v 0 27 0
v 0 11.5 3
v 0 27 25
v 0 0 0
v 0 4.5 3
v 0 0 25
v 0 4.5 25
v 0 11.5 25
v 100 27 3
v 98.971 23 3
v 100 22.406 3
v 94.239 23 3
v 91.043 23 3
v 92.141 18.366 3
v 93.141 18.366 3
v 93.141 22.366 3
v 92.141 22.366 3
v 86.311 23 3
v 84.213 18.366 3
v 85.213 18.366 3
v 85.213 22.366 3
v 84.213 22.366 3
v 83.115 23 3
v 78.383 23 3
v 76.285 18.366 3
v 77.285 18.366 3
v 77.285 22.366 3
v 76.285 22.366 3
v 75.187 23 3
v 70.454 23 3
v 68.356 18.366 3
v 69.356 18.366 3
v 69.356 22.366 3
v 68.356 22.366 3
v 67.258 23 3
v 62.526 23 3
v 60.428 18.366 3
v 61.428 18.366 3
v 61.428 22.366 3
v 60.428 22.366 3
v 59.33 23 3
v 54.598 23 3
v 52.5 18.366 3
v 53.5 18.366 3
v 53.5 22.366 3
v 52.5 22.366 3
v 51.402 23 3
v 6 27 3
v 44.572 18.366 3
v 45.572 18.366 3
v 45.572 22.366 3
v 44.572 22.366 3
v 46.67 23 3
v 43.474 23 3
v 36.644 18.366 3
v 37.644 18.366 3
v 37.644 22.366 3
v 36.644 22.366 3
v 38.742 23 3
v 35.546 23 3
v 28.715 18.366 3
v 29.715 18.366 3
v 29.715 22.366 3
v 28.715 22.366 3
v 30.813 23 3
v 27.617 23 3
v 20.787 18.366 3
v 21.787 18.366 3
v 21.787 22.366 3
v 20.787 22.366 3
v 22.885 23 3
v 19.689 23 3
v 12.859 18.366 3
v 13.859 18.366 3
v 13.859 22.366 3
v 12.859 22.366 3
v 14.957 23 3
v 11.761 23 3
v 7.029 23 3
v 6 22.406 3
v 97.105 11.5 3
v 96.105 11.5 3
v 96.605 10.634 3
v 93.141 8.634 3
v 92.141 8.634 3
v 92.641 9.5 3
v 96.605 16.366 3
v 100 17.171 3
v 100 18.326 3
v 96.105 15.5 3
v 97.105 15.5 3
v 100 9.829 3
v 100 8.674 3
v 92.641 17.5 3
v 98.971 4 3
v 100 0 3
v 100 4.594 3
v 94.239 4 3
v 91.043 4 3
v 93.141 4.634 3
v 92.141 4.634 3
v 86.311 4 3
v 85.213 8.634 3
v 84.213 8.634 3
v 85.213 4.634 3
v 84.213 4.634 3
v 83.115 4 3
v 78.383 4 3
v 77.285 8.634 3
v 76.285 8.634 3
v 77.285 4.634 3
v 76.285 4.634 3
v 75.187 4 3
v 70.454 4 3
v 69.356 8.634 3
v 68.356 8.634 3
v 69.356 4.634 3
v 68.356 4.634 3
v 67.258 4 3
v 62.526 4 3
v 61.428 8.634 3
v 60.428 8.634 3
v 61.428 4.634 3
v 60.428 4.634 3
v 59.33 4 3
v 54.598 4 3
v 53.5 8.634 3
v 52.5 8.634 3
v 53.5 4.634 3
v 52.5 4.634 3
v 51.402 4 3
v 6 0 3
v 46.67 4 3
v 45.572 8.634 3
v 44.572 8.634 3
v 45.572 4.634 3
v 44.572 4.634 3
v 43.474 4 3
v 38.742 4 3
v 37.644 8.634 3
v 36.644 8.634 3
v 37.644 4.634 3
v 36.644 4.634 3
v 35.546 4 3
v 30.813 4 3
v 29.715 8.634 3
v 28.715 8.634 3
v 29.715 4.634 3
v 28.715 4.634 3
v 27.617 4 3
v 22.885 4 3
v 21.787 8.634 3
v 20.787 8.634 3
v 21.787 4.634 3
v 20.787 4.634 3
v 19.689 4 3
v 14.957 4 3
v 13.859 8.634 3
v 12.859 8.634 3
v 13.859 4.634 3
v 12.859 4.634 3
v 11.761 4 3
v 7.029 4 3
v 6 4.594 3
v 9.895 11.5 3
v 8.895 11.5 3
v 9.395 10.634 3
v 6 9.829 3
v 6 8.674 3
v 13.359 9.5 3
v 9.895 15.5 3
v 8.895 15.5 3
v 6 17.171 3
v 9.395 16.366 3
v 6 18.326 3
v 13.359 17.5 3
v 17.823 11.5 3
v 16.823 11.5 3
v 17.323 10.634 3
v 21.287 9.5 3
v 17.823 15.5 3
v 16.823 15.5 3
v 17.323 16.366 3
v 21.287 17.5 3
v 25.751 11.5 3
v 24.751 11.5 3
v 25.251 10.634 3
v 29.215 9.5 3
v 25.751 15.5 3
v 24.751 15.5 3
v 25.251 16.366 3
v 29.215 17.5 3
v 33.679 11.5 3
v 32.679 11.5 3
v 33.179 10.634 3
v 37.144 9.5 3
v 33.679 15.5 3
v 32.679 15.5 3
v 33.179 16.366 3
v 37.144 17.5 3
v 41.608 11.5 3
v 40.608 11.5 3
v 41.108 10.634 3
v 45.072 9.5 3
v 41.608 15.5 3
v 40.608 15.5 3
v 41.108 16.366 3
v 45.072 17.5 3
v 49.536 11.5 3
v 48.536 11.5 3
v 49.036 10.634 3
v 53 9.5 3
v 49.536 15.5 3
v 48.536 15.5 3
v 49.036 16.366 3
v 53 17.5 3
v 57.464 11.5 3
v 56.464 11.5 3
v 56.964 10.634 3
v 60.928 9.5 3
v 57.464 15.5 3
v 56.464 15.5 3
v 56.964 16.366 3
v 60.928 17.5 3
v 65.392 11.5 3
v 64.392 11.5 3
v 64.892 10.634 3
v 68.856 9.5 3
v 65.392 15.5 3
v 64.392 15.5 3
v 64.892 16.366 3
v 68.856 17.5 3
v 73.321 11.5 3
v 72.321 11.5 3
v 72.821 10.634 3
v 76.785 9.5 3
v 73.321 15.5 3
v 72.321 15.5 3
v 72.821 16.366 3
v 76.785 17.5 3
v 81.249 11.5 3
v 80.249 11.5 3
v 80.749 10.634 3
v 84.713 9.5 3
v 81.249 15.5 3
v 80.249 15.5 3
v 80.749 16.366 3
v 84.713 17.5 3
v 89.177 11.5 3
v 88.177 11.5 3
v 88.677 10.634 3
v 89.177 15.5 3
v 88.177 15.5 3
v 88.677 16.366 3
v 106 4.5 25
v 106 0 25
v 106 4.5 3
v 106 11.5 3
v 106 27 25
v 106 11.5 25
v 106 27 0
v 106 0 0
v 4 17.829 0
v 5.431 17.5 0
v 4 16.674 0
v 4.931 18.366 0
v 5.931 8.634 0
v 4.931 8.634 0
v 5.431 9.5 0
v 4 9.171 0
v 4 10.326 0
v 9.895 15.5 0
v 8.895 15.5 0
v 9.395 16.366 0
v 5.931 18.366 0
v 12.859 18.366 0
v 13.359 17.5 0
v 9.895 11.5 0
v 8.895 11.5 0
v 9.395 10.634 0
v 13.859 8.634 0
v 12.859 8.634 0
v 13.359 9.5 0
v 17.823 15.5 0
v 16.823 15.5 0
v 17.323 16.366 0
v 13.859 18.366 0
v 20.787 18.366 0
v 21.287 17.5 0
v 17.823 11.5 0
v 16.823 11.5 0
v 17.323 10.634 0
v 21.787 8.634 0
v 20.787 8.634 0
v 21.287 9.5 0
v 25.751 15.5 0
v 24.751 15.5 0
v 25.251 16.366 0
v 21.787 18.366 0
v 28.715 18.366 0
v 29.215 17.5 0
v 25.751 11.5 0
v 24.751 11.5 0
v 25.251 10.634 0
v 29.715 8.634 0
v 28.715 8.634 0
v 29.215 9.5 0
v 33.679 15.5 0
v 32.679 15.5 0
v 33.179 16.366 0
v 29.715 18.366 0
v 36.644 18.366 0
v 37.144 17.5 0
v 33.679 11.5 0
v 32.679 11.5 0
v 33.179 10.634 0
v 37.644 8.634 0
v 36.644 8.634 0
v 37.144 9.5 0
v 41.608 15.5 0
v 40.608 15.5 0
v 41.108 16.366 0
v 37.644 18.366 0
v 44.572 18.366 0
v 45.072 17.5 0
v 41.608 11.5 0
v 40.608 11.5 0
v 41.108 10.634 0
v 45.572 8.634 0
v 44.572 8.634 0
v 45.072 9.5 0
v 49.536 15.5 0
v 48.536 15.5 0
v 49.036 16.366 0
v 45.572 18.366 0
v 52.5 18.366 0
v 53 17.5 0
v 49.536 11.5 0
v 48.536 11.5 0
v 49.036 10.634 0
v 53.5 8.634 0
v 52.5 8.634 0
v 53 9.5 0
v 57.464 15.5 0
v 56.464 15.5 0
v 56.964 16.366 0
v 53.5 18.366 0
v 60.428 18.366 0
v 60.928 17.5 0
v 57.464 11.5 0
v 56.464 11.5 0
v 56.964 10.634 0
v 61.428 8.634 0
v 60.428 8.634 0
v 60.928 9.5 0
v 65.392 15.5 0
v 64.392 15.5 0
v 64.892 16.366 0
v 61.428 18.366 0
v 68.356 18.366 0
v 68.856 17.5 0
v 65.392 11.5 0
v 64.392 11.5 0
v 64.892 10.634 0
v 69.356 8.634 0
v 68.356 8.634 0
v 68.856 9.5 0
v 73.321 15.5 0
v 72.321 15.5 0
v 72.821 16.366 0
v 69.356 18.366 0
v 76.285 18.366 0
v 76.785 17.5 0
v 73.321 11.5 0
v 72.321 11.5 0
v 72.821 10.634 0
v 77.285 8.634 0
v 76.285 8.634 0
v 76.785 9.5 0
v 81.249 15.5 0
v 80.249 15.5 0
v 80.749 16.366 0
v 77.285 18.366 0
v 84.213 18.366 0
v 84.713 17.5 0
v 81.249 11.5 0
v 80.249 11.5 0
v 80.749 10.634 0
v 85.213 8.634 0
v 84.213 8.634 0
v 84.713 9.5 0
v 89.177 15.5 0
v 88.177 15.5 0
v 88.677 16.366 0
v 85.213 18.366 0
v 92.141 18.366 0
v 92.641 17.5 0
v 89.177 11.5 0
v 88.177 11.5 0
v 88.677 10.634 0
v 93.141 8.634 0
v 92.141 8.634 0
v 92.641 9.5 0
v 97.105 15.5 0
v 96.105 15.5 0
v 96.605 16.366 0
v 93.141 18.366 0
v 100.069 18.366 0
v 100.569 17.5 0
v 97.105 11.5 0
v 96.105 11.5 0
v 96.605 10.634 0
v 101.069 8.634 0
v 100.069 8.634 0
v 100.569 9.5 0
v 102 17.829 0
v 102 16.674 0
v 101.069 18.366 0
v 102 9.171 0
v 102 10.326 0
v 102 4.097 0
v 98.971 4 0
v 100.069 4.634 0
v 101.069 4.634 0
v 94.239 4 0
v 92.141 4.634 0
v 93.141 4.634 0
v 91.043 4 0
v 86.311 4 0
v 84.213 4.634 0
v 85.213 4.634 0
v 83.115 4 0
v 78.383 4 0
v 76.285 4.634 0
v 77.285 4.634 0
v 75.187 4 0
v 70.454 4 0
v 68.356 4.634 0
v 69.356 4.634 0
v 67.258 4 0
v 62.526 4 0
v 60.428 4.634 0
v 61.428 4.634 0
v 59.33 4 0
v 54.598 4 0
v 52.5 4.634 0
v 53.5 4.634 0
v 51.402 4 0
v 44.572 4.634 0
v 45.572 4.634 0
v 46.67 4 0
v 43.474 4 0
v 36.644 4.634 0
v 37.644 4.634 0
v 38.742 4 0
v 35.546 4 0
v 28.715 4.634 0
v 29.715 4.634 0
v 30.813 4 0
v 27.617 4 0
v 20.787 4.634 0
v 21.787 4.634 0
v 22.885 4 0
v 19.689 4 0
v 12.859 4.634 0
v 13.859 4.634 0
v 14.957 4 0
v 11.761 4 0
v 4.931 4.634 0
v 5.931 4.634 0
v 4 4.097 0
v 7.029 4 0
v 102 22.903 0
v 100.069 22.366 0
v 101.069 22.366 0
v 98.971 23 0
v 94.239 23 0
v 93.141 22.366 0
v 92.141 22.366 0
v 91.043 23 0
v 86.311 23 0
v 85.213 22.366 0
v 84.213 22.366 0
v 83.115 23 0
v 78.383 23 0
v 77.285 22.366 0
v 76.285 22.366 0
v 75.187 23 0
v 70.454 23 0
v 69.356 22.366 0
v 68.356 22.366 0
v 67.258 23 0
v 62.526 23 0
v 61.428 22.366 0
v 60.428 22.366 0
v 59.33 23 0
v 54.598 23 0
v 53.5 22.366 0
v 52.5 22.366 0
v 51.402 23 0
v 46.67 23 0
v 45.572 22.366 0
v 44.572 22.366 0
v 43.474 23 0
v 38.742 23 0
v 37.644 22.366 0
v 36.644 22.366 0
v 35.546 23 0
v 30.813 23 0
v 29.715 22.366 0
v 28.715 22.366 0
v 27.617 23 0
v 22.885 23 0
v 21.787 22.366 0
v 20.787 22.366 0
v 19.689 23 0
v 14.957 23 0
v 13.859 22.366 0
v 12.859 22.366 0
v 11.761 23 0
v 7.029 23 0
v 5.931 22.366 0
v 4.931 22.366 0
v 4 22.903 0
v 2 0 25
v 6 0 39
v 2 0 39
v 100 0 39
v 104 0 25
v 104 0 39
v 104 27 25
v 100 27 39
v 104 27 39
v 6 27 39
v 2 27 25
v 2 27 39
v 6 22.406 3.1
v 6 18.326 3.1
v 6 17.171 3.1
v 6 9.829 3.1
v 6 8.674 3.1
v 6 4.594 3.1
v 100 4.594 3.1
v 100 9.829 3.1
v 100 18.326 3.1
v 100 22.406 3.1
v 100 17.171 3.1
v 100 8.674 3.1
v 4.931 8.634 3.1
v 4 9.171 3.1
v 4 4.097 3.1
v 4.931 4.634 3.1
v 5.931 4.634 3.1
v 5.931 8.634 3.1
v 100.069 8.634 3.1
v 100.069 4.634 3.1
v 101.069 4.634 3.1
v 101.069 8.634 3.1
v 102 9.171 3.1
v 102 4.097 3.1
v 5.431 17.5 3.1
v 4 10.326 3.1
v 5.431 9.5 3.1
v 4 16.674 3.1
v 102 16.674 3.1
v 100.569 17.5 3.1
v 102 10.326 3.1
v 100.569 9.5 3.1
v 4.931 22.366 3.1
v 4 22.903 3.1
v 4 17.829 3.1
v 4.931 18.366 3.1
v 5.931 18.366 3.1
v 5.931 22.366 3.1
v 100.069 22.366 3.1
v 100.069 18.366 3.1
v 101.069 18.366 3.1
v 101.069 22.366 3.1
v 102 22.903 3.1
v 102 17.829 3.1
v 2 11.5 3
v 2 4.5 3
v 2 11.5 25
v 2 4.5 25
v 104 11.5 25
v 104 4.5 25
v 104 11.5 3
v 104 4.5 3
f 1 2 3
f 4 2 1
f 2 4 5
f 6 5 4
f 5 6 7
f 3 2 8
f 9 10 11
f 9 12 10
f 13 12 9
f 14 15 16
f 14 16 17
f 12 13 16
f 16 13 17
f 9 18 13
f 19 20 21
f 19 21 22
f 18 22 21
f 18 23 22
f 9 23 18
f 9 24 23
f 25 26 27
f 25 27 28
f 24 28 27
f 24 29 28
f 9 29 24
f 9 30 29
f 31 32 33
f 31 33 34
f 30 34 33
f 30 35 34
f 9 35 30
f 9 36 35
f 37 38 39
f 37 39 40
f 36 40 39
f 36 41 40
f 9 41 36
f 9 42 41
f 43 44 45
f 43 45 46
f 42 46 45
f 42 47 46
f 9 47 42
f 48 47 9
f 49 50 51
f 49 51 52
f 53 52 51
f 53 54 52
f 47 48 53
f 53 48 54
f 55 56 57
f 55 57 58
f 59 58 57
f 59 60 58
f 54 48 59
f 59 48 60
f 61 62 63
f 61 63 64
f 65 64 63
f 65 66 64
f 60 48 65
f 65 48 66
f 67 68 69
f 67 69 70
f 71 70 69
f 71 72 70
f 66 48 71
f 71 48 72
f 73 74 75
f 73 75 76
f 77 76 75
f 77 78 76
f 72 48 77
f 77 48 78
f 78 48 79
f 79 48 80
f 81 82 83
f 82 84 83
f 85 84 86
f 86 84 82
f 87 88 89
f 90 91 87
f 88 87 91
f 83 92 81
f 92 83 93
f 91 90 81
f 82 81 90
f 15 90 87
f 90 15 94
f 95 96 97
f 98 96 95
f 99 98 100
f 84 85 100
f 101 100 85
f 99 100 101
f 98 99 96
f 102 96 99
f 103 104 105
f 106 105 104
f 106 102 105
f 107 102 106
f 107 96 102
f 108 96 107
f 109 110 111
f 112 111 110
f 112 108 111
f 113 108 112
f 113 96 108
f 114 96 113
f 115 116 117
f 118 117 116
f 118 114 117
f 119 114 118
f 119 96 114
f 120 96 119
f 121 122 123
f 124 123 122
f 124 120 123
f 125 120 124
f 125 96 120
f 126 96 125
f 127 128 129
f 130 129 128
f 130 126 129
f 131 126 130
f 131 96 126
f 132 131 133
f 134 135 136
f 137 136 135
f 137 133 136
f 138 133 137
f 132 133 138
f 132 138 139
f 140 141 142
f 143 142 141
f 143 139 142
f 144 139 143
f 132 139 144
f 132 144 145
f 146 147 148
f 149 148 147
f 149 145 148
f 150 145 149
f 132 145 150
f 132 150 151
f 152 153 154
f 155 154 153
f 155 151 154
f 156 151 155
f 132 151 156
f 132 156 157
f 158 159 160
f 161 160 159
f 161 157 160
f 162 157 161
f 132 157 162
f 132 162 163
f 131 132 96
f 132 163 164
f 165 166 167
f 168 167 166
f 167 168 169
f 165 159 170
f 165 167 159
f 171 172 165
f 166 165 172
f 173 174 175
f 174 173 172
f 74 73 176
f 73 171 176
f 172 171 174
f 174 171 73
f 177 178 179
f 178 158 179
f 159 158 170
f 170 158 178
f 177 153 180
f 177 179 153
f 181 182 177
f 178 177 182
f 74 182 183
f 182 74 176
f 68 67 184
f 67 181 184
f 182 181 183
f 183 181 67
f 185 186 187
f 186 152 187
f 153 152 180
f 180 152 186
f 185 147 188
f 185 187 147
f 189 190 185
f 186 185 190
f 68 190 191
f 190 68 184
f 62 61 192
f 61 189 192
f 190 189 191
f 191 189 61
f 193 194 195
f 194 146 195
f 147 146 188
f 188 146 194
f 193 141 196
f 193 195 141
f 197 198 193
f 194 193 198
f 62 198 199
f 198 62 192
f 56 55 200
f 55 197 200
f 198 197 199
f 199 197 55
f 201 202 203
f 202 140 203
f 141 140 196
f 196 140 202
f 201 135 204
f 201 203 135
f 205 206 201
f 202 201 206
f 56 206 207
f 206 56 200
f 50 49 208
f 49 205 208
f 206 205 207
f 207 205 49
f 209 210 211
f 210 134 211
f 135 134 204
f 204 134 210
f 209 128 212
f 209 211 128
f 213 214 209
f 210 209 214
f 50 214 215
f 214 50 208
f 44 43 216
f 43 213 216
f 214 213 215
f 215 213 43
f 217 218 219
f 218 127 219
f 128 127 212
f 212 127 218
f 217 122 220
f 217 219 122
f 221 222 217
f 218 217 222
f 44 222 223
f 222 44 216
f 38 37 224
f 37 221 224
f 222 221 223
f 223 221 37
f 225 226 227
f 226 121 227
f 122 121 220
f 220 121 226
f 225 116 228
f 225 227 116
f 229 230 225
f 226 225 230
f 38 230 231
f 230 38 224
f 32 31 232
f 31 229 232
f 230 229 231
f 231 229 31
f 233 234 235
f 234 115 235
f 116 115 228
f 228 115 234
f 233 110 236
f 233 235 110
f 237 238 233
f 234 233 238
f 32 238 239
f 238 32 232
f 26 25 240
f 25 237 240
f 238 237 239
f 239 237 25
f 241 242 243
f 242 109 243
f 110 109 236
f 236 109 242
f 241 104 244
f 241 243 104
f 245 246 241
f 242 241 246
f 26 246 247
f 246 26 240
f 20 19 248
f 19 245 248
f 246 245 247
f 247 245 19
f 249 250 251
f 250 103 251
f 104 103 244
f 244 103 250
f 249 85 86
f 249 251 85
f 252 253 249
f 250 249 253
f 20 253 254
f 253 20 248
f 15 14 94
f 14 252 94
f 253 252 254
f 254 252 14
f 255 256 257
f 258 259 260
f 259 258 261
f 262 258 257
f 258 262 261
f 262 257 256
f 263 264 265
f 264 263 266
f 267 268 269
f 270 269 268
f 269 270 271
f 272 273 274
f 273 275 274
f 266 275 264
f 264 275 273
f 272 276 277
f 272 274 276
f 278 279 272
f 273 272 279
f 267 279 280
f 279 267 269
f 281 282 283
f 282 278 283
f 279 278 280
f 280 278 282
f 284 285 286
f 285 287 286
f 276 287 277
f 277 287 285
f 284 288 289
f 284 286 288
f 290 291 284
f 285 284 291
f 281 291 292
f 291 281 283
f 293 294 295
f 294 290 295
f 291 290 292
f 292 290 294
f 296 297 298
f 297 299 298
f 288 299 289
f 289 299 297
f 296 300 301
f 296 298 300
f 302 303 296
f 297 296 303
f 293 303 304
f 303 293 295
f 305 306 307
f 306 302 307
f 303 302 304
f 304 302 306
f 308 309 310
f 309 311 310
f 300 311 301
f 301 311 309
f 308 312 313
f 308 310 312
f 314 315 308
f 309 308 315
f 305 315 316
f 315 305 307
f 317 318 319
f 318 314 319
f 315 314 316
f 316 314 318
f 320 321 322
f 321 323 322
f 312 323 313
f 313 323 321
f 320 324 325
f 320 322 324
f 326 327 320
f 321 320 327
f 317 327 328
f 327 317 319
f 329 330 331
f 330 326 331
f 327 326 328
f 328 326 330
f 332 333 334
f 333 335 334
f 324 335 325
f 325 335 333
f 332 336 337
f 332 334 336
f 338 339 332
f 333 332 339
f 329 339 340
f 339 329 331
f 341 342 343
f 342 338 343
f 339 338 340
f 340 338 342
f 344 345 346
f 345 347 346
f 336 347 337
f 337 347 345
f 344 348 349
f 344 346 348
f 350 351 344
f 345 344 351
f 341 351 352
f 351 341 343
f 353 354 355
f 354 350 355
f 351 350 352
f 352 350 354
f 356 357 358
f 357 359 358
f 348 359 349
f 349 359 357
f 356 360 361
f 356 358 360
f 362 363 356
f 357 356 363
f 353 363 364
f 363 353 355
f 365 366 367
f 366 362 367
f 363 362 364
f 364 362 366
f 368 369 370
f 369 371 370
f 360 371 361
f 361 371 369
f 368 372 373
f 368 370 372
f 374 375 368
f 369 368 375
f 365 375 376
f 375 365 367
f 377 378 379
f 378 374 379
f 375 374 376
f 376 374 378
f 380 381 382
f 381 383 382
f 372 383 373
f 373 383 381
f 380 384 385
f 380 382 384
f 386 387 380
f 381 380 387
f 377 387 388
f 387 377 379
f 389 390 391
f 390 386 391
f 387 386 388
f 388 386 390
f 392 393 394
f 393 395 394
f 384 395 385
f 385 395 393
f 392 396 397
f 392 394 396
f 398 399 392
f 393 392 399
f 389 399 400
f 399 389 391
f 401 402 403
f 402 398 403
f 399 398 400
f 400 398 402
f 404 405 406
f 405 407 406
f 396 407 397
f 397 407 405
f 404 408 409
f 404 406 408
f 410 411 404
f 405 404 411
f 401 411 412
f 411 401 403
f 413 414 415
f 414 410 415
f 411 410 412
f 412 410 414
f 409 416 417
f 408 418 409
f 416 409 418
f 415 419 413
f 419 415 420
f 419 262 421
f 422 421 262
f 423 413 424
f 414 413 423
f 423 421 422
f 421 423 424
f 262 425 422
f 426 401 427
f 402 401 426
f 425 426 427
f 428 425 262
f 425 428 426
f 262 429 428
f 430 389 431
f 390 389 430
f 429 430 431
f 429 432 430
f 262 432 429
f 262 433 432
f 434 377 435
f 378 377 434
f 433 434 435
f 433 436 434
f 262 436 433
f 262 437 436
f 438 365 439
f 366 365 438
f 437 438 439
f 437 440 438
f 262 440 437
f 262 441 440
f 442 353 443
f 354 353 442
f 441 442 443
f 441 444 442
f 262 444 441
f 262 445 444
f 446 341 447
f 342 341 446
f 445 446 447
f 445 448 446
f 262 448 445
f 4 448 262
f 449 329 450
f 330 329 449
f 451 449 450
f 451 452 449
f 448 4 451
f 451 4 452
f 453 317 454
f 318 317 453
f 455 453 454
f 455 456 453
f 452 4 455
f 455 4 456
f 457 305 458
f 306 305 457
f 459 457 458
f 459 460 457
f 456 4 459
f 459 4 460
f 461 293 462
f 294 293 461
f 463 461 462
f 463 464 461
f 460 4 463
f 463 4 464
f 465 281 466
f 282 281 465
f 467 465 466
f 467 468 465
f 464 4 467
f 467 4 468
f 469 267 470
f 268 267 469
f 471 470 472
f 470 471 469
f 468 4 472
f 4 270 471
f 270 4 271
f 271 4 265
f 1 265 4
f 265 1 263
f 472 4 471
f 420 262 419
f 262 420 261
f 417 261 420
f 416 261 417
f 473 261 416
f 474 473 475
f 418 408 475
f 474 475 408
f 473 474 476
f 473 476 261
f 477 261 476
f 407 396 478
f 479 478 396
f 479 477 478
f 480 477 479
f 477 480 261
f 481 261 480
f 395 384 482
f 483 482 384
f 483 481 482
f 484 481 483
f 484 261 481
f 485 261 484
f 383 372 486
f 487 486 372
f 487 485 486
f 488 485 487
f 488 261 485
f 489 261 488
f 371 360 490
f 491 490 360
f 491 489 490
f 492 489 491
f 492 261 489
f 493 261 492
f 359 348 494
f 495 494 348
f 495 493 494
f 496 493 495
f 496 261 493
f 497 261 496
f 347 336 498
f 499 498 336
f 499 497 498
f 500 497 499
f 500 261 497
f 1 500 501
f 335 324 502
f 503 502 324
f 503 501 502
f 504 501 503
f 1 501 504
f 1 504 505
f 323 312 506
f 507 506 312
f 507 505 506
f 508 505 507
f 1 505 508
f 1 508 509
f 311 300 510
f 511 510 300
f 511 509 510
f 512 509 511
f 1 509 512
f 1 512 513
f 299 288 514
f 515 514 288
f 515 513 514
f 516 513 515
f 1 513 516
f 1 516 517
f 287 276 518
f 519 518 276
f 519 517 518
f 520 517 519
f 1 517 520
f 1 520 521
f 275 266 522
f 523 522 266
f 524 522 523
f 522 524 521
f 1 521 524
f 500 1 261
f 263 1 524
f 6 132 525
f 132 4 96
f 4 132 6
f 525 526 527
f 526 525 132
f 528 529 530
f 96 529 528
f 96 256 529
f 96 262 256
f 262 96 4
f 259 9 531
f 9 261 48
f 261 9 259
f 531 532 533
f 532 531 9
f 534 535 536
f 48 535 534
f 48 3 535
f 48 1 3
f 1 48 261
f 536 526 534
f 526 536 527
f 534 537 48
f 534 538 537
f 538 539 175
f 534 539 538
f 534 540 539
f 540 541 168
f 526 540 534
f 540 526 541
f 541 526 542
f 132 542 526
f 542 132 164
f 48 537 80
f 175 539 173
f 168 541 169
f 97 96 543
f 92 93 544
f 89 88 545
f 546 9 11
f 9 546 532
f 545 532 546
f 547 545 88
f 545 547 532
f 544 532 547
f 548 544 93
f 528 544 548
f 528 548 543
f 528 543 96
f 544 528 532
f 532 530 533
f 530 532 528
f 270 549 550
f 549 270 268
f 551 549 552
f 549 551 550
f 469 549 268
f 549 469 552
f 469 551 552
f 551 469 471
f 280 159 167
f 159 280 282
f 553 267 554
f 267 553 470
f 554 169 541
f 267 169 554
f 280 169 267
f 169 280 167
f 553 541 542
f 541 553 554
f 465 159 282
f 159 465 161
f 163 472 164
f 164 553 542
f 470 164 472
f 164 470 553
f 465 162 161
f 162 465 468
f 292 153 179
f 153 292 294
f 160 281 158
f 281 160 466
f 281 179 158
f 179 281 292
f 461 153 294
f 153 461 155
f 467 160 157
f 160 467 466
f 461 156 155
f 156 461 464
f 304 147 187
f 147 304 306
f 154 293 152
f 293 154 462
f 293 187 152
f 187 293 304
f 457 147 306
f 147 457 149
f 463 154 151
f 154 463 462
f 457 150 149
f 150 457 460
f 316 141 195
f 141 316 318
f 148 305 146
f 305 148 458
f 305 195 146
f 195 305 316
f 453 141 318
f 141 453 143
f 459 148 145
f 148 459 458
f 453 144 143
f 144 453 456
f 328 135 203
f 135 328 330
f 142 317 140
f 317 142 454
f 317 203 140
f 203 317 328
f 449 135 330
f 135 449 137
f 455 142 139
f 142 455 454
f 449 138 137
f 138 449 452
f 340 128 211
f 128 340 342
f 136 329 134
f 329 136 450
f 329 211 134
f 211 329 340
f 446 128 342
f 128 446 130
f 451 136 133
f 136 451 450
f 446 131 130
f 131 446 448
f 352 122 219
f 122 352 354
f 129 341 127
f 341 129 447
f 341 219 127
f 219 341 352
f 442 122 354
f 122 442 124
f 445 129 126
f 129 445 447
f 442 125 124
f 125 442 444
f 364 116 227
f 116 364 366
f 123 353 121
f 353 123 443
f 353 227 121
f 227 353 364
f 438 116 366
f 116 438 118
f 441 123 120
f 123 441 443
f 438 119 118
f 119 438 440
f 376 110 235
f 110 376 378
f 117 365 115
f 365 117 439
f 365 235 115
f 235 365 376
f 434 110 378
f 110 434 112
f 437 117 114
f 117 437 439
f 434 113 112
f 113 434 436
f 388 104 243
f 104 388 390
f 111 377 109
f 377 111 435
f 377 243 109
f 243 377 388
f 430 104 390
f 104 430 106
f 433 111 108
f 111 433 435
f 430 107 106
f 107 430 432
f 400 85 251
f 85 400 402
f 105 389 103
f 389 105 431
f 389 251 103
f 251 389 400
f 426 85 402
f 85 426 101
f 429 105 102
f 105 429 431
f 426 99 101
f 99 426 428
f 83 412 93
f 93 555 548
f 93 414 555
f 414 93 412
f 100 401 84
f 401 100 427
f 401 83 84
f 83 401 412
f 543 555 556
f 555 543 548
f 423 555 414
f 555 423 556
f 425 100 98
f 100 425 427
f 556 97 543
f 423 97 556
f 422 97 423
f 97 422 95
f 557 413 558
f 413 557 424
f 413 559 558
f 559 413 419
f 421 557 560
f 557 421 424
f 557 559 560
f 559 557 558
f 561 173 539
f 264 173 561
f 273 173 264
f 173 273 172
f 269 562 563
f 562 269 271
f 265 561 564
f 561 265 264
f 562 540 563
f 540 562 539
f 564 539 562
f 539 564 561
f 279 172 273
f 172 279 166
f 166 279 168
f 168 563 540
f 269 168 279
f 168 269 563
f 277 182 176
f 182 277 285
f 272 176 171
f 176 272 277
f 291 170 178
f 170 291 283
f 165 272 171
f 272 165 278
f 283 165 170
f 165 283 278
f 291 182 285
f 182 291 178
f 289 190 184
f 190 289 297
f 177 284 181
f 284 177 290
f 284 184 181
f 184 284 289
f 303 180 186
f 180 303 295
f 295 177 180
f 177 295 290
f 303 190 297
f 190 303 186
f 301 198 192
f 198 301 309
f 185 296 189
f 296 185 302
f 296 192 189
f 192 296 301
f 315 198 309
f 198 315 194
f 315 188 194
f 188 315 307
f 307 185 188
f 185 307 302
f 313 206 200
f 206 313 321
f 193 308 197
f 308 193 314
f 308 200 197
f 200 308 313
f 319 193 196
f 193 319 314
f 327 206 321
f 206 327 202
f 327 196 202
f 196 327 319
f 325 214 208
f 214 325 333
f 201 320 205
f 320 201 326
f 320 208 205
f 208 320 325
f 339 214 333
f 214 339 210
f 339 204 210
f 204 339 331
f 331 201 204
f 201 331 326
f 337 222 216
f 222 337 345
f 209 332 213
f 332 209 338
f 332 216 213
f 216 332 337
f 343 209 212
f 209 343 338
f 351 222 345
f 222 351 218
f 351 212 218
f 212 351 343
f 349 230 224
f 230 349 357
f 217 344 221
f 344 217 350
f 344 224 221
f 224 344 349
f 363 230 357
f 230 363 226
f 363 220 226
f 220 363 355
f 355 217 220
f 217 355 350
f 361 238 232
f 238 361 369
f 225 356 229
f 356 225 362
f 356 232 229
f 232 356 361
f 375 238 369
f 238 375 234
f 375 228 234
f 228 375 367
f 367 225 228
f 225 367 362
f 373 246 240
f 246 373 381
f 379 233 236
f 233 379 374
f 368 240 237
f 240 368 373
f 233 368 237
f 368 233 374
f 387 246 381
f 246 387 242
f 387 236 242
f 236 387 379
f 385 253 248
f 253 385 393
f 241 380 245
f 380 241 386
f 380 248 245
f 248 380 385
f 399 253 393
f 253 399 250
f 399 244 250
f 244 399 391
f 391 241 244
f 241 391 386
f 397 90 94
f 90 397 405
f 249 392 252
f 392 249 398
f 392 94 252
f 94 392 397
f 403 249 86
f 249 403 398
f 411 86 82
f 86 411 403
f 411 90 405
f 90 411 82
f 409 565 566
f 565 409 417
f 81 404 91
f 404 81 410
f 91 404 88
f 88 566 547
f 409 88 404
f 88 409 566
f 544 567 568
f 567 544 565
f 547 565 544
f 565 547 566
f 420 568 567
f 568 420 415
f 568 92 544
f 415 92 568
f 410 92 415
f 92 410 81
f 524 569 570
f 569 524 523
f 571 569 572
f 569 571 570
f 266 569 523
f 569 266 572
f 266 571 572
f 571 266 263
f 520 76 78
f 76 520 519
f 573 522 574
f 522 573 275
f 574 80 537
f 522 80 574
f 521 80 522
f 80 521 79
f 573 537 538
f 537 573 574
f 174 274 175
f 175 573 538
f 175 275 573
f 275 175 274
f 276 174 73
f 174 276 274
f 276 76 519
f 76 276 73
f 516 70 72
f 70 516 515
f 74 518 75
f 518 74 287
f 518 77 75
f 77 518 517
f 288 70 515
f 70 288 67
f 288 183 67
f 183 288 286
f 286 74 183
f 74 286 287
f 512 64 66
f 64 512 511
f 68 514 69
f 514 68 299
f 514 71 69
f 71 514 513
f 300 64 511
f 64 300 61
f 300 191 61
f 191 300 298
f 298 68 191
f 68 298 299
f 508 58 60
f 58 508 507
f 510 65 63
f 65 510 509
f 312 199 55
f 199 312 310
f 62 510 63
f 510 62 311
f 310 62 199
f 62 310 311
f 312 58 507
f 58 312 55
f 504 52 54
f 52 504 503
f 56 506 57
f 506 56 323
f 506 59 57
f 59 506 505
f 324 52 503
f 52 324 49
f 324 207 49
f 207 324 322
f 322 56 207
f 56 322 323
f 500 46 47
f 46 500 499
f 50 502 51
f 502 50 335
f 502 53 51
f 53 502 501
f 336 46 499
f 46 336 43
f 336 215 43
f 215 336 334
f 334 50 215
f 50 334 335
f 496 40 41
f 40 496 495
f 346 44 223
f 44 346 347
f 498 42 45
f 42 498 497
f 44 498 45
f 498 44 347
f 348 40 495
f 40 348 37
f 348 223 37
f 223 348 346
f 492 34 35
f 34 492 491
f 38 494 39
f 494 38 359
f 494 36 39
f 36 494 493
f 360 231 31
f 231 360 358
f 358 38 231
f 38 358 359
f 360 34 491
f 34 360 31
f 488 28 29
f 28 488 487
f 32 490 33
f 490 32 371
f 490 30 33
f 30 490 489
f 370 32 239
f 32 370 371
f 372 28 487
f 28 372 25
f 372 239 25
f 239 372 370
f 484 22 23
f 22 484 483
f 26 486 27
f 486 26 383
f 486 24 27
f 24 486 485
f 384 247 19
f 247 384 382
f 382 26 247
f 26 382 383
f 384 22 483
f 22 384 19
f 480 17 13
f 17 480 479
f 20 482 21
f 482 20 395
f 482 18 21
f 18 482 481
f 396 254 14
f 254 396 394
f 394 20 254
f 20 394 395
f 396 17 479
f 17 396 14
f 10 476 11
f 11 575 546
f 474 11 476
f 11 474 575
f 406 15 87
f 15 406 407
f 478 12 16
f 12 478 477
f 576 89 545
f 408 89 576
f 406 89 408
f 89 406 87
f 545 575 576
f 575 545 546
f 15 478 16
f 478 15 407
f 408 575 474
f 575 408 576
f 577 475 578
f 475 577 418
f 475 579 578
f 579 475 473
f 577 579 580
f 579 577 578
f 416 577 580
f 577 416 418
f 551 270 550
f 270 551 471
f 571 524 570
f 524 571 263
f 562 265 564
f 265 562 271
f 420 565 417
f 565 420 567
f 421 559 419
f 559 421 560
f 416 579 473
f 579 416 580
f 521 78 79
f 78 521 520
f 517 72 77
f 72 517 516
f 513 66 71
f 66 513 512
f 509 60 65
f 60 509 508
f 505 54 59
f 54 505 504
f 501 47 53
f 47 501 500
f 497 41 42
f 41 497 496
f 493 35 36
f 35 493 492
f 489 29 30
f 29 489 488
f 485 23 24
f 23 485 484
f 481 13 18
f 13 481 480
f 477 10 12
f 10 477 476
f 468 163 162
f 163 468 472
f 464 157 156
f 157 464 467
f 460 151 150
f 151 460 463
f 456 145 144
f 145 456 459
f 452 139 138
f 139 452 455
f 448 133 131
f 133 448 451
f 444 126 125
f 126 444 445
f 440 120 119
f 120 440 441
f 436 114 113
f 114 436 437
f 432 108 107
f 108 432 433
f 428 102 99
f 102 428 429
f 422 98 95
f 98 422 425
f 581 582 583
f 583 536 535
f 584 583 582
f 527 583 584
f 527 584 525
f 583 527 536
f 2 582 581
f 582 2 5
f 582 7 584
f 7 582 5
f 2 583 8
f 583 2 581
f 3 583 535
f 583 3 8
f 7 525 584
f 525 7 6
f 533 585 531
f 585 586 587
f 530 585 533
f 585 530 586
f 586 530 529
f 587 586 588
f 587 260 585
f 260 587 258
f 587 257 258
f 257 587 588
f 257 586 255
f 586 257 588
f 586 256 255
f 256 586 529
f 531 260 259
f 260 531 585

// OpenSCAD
// Supermicro CSE-826 Hot-Swap Bay Vent Grate
// Print in PETG, 0.2mm layers, 3 walls, 20% infill, no supports needed

// ── Dimensions ───────────────────────────────────────────────────
bay_w      = 106.0;   // bay opening width (mm)
bay_h      =  27.0;   // bay opening height (mm)
face_t     =   3.0;   // faceplate thickness
rail_t     =   6.0;   // side rail thickness (thickened for groove)
rail_d     =  36.0;   // depth rails extend into bay
rail_h     =  27.0;   // rail height
rail_y     =   0;     // flush with bottom edge of bay
border     =   4.0;   // solid border around vent cutouts

// ── Groove (runs along outside face of each rail) ─────────────────
groove_h   =   7.0;   // groove height
groove_d   =   2.0;   // groove depth (into rail, from outside face)
groove_y   =   4.5;   // offset from bottom of rail
tab_d      =   25.0;  // offset of back tab to prevent rubbing

// ── Honeycomb ────────────────────────────────────────────────────
hex_cr     =   4.0;   // circumradius of each hexagon
hex_gap    =   1.0;   // gap between hex cell edges

hex_ir      = hex_cr * cos(30);
hex_pitch_x = (hex_ir + hex_gap/2) * 2;
hex_pitch_y = hex_pitch_x * sin(60);

// ─────────────────────────────────────────────────────────────────

vent_x0 = border;
vent_y0 = border;
vent_w  = bay_w - border * 2;
vent_h  = bay_h - border * 2;

// Centre the honeycomb grid within the vent area.
// Calculate how much space is left over after fitting whole pitches,
// then shift the grid by half that remainder so it's symmetric.
cols_fit    = floor(vent_w / hex_pitch_x);
rows_fit    = floor(vent_h / hex_pitch_y);
offset_x    = (vent_w - cols_fit * hex_pitch_x) / 2;
offset_y    = (vent_h - rows_fit * hex_pitch_y) / 2;

module hex_cell(h) {
    rotate([0, 0, 30])
        cylinder(r = hex_cr, h = h, $fn = 6);
}

module honeycomb(w, h, depth) {
    cols = ceil(w / hex_pitch_x) + 2;
    rows = ceil(h / hex_pitch_y) + 2;
    for (row = [0 : rows]) {
        for (col = [0 : cols]) {
            cx = offset_x + col * hex_pitch_x
                 + (row % 2 == 1 ? hex_pitch_x / 2 : 0)
                 - hex_pitch_x;
            cy = offset_y + row * hex_pitch_y - hex_pitch_y;
            if (   cx + hex_cr > 0 && cx - hex_cr < w
                && cy + hex_cr > 0 && cy - hex_cr < h)
                translate([cx, cy, -0.1])
                    hex_cell(depth + 0.2);
        }
    }
}

// Left rail groove
// Left rail groove — cut from outside (x = -0.1) inward by groove_d
module left_groove() {
    translate([-0.1, rail_y + groove_y, face_t])
        cube([groove_d + 0.1, groove_h, rail_d]);
}

module left_offset() {
    translate([-0.1, rail_y, tab_d])
        cube([groove_d + 0.1, bay_h, rail_d]);
}

// Right rail groove — cut from outside face inward by groove_d
module right_groove() {
    translate([bay_w - groove_d, rail_y + groove_y, face_t])
        cube([groove_d + 0.1, groove_h, rail_d]);
}

module right_offset() {
    translate([bay_w - groove_d, rail_y , tab_d])
        cube([groove_d + 0.1, bay_h, rail_d]);
}

difference() {
    union() {
        // Faceplate
        cube([bay_w, bay_h, face_t]);

        // Left rail
        translate([0, rail_y, face_t])
            cube([rail_t, rail_h, rail_d]);

        // Right rail
        translate([bay_w - rail_t, rail_y, face_t])
            cube([rail_t, rail_h, rail_d]);
    }

    // Honeycomb cutouts clipped to vent area
    translate([vent_x0, vent_y0, 0])
        intersection() {
            cube([vent_w, vent_h, face_t + 0.2]);
            honeycomb(vent_w, vent_h, face_t);
        }

    // Rail grooves
    left_groove();
    left_offset();
    right_groove();
    right_offset();
}

// Copyright 2026 https://gihub.com/kking124. All Rights Reserved.
